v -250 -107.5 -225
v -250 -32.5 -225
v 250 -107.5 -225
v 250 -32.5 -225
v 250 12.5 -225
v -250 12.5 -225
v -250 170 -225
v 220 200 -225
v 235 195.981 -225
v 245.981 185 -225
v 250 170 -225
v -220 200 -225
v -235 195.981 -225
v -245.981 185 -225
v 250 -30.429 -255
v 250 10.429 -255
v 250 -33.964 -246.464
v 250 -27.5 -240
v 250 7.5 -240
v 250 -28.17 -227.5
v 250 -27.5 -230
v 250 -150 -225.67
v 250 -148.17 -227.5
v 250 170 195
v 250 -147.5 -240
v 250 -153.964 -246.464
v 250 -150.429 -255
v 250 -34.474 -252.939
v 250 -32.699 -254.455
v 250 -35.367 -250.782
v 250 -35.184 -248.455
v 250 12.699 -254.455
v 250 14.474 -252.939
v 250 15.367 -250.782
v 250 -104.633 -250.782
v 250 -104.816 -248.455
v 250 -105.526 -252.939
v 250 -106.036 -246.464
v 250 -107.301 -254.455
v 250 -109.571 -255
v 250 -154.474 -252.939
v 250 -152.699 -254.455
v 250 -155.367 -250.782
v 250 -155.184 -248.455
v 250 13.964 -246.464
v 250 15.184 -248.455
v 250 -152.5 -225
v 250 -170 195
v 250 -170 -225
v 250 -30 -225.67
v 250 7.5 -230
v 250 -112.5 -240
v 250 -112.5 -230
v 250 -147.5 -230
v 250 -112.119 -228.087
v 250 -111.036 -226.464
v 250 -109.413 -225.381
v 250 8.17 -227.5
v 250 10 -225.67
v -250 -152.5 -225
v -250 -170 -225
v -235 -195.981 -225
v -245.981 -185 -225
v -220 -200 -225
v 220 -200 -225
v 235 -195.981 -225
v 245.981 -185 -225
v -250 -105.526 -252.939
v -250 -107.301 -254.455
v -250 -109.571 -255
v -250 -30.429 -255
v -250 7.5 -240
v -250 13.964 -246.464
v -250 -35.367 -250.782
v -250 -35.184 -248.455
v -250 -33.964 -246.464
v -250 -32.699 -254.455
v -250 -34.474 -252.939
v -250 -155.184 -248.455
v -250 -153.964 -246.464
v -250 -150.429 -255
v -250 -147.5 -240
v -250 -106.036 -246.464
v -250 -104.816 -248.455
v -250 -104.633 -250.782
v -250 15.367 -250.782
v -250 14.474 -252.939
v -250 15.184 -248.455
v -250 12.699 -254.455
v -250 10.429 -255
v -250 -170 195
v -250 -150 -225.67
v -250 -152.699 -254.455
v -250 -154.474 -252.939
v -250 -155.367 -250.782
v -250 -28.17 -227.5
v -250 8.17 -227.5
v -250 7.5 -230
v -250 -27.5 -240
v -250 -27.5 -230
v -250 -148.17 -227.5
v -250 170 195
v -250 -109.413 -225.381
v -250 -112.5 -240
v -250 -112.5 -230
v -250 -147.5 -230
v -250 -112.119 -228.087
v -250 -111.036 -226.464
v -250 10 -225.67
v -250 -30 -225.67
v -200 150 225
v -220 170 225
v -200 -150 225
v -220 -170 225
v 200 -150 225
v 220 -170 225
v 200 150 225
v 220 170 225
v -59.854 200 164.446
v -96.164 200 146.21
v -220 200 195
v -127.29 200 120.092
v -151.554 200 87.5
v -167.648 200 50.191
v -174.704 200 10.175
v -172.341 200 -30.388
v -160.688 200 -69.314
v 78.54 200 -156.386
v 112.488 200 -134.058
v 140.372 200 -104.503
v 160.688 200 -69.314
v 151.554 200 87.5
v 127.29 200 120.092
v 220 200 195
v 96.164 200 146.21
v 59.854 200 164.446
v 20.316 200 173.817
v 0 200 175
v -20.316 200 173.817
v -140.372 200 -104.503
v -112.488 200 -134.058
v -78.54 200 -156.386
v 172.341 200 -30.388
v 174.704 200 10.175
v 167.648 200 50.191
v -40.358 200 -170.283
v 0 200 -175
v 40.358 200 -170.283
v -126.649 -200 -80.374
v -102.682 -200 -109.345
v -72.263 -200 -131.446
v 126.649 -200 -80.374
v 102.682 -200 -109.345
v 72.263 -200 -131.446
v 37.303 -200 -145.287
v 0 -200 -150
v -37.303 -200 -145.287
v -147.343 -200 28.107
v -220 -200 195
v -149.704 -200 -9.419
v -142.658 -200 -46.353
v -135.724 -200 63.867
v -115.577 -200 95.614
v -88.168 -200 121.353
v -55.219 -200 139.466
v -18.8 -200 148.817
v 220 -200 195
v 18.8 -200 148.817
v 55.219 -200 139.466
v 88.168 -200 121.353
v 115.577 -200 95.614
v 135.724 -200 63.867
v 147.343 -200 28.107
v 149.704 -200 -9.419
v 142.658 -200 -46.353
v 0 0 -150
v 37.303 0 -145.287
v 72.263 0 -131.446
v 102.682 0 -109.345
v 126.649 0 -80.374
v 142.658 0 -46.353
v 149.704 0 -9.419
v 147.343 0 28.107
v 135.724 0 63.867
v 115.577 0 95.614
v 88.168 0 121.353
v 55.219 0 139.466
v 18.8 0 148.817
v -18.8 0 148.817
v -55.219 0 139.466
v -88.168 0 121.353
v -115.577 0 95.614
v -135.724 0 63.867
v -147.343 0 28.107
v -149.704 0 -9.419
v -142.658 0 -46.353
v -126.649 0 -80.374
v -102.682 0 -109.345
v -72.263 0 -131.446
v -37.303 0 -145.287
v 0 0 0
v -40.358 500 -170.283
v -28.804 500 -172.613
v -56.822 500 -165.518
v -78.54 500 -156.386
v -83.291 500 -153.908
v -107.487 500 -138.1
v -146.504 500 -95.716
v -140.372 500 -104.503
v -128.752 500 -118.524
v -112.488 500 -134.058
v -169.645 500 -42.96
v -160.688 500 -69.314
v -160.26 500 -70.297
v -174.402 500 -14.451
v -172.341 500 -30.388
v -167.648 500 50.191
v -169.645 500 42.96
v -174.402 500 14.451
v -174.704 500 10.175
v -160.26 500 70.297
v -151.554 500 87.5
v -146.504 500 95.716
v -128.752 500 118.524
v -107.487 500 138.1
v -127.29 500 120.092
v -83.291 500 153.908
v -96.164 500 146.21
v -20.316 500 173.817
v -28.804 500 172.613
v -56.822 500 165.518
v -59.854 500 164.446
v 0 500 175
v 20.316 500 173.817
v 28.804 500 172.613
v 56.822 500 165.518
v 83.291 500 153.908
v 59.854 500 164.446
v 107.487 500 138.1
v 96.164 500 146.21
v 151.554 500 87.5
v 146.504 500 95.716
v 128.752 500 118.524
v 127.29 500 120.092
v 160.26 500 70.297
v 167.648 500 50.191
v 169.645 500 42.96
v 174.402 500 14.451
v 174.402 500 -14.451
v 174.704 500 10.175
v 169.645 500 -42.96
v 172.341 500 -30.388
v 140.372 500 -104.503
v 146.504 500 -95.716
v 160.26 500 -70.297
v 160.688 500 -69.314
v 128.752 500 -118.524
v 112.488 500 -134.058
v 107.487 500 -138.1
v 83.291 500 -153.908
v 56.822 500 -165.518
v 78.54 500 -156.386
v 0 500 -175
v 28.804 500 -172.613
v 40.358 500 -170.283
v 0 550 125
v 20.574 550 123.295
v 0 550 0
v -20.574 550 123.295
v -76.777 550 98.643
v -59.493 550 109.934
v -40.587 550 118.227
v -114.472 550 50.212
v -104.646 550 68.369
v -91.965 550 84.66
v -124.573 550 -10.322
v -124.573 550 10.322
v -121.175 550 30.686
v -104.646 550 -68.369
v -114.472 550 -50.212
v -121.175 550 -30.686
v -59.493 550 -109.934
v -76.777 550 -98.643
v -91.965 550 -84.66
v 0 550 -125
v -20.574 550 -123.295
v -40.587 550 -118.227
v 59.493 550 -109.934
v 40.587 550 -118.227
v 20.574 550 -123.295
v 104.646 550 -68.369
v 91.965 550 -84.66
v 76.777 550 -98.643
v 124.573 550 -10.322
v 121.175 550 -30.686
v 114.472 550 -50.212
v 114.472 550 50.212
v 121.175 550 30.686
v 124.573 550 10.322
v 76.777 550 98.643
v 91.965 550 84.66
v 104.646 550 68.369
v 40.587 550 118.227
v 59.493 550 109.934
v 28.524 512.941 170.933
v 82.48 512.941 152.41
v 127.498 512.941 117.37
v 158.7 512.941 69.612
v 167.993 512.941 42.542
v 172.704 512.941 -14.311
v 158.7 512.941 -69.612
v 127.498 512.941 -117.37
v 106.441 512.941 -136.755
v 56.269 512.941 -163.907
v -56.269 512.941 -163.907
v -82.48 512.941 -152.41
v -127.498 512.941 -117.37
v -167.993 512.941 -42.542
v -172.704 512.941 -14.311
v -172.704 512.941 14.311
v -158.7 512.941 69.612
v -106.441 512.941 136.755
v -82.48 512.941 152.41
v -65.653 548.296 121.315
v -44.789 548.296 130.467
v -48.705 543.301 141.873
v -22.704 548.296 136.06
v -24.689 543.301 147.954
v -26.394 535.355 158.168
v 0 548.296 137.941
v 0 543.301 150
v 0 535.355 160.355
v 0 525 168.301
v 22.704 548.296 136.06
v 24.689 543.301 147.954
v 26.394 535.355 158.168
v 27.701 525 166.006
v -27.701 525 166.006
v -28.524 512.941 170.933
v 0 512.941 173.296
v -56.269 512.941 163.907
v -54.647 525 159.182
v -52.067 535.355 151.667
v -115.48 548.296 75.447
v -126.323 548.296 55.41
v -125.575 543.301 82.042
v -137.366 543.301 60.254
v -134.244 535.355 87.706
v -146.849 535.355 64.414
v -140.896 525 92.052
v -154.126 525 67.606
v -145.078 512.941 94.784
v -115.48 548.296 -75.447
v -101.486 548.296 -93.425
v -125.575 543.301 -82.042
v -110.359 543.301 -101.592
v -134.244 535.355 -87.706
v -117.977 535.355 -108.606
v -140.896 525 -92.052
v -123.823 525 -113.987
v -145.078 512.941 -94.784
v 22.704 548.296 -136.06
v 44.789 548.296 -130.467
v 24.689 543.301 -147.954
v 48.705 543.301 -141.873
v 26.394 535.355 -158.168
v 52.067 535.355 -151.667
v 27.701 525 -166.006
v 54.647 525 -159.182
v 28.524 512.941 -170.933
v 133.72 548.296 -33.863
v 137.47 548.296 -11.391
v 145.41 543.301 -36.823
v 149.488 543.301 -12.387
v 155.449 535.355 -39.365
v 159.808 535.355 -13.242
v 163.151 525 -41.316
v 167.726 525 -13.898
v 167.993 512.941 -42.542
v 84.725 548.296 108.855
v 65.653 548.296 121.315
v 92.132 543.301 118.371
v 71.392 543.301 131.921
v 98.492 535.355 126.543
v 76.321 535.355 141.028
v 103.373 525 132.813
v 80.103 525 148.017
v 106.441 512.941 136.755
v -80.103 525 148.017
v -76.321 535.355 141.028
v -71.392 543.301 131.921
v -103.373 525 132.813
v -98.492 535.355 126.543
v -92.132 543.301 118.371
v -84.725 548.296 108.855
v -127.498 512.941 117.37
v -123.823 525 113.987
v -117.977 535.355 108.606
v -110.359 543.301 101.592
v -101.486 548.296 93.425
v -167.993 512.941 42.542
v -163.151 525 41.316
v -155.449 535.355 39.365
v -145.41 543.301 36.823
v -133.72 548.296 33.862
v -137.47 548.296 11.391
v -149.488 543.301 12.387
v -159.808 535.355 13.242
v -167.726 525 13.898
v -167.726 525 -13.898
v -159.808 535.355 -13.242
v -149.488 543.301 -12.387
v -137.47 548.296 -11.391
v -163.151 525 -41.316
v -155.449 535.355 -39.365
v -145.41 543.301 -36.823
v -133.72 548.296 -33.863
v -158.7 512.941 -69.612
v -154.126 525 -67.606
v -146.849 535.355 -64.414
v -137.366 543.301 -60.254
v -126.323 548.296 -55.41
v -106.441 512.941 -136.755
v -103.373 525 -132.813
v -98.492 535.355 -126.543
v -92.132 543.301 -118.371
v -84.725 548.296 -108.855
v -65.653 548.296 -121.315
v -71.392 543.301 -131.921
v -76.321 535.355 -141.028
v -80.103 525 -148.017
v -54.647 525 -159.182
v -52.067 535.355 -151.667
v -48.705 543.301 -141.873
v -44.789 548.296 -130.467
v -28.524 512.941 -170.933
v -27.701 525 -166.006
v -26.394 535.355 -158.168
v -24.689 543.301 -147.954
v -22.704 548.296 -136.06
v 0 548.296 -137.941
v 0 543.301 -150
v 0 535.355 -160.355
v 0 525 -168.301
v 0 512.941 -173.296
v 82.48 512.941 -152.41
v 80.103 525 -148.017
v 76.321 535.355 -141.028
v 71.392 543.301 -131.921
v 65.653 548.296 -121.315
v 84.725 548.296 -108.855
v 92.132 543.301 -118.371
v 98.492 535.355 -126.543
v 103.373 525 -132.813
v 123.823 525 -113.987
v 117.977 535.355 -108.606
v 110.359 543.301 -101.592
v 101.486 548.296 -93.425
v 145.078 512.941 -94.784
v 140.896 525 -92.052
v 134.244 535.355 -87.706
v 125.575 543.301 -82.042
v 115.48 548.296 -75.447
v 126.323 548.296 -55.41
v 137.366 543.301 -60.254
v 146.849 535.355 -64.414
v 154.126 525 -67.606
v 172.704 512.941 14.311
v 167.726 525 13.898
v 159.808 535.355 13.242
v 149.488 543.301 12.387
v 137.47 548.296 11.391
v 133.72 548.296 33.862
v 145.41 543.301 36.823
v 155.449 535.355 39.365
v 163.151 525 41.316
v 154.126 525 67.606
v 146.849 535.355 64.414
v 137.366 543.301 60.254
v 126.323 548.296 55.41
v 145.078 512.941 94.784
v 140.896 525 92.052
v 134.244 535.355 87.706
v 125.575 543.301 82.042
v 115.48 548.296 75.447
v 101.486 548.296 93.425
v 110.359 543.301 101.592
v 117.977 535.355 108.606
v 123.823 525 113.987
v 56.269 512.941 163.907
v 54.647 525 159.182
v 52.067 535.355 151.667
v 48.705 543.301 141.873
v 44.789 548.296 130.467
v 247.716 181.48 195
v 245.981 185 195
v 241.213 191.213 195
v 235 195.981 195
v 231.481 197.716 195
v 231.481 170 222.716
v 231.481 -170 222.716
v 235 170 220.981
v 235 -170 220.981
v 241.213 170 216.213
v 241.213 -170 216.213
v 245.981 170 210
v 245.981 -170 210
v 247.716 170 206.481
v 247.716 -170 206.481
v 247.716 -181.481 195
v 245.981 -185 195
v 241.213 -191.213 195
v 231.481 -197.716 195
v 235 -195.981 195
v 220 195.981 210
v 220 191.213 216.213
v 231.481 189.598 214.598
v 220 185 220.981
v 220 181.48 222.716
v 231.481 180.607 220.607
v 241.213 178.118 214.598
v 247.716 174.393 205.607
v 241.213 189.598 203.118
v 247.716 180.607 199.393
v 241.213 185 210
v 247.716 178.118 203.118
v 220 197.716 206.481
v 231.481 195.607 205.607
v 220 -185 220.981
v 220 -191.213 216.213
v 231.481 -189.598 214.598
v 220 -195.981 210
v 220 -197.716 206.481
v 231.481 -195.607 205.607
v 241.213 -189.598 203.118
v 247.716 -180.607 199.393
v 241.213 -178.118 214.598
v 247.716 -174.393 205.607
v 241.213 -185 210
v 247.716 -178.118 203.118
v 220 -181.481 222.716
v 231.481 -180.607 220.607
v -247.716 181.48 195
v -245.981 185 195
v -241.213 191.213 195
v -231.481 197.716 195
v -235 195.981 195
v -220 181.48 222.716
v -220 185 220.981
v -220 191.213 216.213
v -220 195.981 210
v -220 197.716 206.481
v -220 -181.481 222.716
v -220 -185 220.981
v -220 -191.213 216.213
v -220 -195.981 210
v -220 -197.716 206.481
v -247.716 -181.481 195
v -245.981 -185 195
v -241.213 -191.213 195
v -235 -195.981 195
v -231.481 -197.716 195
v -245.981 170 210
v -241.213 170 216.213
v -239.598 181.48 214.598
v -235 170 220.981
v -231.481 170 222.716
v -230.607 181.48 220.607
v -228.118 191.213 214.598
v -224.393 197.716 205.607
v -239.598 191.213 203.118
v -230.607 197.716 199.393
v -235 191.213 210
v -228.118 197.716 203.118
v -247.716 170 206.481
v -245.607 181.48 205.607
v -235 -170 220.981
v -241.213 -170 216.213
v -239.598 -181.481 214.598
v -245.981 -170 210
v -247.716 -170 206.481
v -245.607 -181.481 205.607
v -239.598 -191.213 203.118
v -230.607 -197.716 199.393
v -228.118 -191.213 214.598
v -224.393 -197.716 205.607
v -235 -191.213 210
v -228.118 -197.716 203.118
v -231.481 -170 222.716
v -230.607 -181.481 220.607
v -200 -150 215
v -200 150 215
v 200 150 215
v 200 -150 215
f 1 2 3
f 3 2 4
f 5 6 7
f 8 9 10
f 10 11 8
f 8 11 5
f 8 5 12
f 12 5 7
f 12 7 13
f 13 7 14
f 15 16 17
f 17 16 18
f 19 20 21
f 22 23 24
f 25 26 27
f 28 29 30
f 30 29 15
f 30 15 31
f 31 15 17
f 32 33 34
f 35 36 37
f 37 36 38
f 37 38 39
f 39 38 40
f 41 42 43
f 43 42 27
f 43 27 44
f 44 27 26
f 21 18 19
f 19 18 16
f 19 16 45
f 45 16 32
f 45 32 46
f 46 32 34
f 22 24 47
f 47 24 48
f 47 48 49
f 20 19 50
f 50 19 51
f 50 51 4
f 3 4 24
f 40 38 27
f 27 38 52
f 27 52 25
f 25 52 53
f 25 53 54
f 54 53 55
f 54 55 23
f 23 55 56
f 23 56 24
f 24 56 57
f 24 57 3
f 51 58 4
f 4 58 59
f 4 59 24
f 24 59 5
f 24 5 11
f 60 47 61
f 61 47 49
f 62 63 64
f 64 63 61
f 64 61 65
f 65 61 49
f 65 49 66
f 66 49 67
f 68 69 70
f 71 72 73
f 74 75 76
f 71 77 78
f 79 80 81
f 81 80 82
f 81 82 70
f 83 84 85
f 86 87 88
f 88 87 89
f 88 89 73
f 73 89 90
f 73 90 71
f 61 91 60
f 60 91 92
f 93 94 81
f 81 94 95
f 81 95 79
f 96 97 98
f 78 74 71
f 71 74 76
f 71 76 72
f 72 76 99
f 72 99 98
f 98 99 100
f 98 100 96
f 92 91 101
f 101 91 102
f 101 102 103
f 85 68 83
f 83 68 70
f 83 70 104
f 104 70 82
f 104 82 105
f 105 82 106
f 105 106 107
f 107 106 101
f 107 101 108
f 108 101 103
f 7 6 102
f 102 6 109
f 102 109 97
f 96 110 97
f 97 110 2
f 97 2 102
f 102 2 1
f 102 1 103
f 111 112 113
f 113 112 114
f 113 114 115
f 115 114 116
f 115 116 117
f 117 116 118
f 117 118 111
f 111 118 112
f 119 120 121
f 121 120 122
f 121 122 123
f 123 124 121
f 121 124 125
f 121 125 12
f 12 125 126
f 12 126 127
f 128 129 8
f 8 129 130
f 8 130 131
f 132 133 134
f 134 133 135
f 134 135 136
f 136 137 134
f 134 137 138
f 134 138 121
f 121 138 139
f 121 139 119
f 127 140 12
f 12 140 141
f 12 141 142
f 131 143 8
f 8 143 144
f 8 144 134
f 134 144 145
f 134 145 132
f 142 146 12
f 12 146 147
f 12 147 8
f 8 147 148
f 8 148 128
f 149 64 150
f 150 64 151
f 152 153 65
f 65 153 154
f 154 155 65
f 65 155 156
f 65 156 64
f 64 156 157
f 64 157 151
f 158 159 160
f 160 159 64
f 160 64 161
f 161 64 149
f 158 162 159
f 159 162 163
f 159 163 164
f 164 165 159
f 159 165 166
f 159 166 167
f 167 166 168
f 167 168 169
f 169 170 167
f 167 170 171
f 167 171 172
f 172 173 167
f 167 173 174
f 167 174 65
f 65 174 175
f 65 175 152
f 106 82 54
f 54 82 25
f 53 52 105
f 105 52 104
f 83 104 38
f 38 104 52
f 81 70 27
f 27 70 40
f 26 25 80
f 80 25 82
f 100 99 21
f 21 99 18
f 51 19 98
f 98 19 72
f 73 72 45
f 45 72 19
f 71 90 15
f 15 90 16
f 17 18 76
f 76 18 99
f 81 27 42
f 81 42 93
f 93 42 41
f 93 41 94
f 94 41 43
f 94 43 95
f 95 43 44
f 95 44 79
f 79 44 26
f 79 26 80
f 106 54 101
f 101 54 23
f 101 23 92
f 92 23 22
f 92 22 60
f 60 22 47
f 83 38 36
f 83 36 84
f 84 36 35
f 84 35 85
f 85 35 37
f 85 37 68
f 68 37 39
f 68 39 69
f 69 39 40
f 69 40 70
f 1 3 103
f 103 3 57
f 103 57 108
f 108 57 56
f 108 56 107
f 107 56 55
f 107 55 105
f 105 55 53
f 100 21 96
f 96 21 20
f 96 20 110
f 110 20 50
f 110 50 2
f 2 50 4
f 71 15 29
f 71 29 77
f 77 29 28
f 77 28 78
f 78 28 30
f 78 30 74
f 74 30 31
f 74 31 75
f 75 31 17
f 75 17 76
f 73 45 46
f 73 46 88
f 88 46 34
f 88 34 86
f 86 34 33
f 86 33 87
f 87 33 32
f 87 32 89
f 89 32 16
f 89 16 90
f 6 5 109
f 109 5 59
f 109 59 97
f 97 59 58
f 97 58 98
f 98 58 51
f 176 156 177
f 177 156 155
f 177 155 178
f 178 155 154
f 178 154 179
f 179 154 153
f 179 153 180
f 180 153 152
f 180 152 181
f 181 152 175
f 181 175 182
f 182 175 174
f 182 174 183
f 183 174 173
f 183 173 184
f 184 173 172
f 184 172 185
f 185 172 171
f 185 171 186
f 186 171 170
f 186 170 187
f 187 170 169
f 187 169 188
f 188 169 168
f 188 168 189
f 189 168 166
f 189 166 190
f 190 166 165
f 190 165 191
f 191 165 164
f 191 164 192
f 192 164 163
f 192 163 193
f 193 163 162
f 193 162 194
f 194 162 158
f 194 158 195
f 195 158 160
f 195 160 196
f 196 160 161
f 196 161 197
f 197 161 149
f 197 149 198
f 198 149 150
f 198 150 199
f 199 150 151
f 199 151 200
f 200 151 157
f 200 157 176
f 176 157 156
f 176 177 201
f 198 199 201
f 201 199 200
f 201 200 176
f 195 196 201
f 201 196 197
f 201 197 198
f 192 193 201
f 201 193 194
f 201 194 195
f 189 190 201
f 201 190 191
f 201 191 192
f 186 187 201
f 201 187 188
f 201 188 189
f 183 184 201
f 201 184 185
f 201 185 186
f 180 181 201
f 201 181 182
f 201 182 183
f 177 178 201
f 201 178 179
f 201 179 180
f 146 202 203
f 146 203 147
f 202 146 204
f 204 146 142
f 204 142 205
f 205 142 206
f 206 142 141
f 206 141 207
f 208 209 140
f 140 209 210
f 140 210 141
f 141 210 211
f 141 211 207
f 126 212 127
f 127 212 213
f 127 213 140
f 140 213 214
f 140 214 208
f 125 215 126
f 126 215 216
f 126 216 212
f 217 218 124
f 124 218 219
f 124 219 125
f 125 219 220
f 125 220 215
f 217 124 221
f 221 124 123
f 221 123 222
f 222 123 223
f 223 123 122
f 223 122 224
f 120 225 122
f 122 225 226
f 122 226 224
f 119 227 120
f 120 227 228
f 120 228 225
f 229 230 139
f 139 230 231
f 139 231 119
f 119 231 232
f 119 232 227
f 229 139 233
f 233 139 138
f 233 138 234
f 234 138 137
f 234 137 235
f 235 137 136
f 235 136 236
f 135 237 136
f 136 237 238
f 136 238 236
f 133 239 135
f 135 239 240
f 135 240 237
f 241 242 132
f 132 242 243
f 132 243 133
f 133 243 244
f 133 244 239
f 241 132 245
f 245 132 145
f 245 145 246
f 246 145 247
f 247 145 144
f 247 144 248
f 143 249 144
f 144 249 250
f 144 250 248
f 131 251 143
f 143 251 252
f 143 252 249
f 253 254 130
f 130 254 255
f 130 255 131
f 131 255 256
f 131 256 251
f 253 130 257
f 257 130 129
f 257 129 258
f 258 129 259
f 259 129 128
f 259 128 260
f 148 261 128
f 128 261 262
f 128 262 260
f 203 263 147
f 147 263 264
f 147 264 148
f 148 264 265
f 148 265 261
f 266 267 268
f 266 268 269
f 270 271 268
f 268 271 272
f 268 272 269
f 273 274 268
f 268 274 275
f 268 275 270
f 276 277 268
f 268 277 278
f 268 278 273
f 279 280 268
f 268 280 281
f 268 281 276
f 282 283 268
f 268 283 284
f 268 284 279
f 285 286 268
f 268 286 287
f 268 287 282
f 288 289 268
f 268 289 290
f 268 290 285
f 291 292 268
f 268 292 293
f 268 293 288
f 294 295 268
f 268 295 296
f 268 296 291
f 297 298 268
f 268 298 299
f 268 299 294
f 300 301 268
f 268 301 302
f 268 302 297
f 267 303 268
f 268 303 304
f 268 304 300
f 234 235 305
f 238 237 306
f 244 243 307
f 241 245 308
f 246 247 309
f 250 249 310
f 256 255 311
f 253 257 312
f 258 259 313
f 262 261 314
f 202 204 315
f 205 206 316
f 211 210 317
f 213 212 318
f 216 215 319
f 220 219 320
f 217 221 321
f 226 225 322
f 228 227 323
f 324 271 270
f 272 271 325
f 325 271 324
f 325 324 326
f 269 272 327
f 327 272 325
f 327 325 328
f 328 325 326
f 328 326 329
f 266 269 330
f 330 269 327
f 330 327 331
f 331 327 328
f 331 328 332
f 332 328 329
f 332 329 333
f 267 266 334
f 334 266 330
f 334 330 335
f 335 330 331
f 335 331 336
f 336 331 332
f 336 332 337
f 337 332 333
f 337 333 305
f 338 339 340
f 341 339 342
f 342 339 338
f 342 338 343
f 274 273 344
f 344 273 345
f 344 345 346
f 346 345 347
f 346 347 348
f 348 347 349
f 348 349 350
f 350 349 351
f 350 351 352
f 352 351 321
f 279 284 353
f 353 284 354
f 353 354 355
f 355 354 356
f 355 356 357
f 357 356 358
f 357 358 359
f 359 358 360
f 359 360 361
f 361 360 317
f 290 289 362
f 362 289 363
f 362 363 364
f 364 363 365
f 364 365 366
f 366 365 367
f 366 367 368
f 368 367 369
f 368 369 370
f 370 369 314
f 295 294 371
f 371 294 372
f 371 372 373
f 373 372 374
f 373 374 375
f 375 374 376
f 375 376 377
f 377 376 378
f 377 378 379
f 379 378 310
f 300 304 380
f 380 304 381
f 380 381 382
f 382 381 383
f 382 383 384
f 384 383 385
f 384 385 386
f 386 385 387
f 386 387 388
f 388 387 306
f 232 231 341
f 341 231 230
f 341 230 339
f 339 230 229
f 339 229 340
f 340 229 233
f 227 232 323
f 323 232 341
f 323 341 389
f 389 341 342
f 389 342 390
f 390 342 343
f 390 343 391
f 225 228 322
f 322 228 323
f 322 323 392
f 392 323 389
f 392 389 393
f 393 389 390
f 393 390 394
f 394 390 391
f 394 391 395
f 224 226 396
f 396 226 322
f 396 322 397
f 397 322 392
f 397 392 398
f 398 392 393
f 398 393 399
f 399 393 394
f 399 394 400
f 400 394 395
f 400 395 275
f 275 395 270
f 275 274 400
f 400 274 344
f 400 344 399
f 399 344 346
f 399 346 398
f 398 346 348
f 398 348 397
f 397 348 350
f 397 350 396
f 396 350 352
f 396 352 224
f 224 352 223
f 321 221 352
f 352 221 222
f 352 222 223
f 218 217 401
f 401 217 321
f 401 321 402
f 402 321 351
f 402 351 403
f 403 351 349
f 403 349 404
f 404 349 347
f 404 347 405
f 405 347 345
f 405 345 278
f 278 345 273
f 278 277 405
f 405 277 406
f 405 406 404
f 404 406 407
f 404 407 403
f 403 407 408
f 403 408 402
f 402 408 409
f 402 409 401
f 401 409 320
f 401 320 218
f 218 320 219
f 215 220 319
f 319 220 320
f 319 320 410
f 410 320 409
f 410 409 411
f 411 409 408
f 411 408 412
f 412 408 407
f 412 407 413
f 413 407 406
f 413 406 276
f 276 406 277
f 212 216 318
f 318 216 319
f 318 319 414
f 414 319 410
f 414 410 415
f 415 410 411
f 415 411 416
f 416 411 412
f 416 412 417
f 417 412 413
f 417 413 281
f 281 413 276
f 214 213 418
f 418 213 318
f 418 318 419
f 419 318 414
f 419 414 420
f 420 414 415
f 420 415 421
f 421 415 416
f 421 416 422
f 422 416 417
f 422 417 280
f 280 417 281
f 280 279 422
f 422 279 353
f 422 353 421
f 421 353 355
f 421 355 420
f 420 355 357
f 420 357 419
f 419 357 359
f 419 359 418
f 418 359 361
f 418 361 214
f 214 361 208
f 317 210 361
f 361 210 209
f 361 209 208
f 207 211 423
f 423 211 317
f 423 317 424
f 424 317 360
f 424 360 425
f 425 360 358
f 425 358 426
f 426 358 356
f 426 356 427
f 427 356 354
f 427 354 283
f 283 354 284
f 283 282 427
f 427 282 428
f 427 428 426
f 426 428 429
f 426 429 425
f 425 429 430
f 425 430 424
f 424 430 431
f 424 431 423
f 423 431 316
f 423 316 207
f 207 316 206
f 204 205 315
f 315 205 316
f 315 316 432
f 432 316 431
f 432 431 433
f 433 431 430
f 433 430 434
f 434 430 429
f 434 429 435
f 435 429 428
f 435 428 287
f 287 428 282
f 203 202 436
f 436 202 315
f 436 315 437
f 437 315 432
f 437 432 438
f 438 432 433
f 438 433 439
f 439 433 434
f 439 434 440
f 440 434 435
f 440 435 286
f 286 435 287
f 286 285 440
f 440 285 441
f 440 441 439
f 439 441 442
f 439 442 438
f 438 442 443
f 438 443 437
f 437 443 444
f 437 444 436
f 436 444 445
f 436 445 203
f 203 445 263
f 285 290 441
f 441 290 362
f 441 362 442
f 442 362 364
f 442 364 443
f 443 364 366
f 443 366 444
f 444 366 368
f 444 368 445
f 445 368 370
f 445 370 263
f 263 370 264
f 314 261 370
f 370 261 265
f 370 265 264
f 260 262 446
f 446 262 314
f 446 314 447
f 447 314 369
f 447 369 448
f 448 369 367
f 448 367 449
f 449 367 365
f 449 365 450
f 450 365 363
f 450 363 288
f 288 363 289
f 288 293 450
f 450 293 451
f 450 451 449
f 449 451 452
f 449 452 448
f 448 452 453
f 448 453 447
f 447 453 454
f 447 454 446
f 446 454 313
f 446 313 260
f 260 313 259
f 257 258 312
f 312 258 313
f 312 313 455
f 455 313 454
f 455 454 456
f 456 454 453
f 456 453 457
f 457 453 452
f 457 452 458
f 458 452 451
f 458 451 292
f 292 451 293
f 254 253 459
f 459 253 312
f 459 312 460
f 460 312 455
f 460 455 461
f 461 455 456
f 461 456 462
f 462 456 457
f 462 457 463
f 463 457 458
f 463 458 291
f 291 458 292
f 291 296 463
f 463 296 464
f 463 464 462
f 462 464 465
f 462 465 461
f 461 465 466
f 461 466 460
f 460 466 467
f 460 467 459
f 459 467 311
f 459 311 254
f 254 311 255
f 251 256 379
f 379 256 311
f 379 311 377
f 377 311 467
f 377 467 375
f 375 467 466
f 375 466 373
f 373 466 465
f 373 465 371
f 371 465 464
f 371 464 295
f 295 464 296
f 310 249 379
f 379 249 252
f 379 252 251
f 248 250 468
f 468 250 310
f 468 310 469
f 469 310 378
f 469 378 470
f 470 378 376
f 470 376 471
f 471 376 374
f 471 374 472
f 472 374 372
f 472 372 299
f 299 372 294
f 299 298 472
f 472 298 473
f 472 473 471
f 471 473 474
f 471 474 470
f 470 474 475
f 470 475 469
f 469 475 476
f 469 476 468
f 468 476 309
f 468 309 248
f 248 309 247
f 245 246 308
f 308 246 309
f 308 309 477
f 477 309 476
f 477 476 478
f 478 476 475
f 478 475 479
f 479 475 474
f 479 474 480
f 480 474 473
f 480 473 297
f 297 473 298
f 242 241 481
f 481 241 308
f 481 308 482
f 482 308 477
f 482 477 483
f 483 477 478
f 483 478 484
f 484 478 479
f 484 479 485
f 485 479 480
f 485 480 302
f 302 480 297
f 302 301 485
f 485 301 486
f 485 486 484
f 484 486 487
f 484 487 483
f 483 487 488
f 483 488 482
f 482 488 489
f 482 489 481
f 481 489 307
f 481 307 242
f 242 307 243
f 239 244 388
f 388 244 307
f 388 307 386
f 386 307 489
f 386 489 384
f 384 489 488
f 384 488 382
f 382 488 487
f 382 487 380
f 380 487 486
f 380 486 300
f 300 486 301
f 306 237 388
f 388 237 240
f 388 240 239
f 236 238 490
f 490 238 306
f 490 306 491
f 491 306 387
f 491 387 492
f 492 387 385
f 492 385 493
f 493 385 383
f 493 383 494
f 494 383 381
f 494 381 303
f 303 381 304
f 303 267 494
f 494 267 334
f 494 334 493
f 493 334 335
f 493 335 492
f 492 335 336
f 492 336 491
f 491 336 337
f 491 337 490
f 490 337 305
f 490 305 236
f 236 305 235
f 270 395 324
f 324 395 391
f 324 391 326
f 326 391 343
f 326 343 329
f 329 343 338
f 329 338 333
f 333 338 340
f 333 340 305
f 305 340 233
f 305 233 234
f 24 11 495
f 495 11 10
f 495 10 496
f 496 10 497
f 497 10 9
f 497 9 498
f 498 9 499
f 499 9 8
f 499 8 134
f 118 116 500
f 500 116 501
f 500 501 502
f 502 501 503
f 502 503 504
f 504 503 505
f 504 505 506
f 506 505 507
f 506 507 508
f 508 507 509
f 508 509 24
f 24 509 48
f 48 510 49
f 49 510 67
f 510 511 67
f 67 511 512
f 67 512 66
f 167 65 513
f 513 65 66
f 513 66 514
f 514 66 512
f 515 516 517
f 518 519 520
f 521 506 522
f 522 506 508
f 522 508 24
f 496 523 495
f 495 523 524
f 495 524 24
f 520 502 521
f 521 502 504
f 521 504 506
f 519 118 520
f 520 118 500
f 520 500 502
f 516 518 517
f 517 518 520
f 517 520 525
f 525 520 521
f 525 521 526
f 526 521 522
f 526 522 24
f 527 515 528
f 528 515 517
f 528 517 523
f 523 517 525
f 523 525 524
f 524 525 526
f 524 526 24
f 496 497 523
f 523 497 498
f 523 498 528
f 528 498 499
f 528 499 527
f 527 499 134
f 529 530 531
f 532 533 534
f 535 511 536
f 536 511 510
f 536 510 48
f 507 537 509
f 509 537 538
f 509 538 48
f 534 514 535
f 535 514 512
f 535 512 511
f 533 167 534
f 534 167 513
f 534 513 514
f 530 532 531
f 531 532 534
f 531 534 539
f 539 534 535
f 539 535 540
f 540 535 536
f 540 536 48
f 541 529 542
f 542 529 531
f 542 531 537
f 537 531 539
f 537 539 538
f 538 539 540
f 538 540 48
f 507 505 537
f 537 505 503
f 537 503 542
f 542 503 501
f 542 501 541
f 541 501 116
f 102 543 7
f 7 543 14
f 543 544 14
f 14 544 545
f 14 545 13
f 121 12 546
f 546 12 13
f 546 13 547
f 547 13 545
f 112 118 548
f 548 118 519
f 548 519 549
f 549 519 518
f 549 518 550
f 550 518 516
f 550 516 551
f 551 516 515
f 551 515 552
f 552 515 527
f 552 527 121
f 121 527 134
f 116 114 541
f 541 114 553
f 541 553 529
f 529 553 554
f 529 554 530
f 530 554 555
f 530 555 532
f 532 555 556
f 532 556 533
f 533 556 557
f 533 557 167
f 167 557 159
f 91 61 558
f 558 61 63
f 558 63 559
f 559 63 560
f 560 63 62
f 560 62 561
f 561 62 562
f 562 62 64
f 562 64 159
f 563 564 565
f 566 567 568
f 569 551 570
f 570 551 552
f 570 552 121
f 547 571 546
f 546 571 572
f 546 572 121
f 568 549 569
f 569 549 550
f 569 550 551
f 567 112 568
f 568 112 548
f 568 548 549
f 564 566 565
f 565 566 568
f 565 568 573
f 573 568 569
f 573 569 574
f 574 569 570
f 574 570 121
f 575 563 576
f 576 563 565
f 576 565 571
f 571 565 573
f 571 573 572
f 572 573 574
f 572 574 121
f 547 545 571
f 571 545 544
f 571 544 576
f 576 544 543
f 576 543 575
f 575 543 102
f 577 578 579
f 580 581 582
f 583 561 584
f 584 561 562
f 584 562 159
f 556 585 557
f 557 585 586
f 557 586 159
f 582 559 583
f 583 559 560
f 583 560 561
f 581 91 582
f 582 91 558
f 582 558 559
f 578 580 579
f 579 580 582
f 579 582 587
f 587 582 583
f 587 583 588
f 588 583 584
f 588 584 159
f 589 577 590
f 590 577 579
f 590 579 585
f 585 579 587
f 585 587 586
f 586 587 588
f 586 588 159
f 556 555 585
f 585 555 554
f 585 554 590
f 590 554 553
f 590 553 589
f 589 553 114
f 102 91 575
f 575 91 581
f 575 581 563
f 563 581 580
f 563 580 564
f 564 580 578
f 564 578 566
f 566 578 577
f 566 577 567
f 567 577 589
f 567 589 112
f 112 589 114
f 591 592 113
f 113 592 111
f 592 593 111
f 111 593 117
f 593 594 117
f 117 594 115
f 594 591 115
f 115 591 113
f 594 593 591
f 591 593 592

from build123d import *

# Parameters (mm, degrees)
SKETCH1_W           = 500
SKETCH1_H           = 450
BOSS_EXTRUDE1_DEPTH = 200
BOSS_EXTRUDE2_DEPTH = 500
FILLET1_R           = 5
SKETCH3_R           = 150
CUT_EXTRUDE1_DEPTH  = 200
SKETCH4_R           = 175
BOSS_EXTRUDE3_DEPTH = 350
FILLET2_R           = 50
FILLET3_R           = 30
SKETCH5_W           = 400
SKETCH5_H           = 300
CUT_EXTRUDE2_DEPTH  = 10


with BuildPart() as part:
    # Sketch1 → Boss-Extrude1 (new, symmetric)
    with BuildSketch(Plane(origin=(0, 0, 0), x_dir=(1, 0, 0), z_dir=(0, 1, 0))):
        Rectangle(SKETCH1_W, SKETCH1_H)
    extrude(amount=BOSS_EXTRUDE1_DEPTH, both=True)

    # Sketch2 → Boss-Extrude2 (add)
    with BuildSketch(Plane(origin=(250, 0, 0), x_dir=(0, 0, -1), z_dir=(1, 0, 0))):
        Polygon((240, -27.5), (255, -42.5), (255, 22.5), (240, 7.5), (225, 7.5), (225, -27.5), align=None)
        Polygon((225, -147.5), (225, -112.5), (240, -112.5), (255, -97.5), (255, -162.5), (240, -147.5), align=None)
    extrude(amount=-BOSS_EXTRUDE2_DEPTH)

    # Fillet1
    fillet1_edges = [part.edges().sort_by_distance(p)[0] for p in [
        (0, -147.5, -225),
        (0, -112.5, -225),
        (0, -97.5, -255),
        (0, -162.5, -255),
        (0, -27.5, -225),
        (0, 7.5, -225),
        (0, 22.5, -255),
        (0, -42.5, -255),
    ]]
    fillet(fillet1_edges, radius=FILLET1_R)

    # Sketch3 → Cut-Extrude1 (cut)
    with BuildSketch(Plane.XZ.offset(200)):
        with Locations(Location((0, 0, 0), (0, 0, 270))):
            Circle(SKETCH3_R)
    extrude(amount=-CUT_EXTRUDE1_DEPTH, mode=Mode.SUBTRACT)

    # Sketch4 → Boss-Extrude3 (add)
    with BuildSketch(Plane(origin=(0, 200, 0), x_dir=(1, 0, 0), z_dir=(0, 1, 0))):
        with Locations(Location((0, 0, 0), (0, 0, 270))):
            Circle(SKETCH4_R)
    extrude(amount=BOSS_EXTRUDE3_DEPTH)

    # Fillet2
    fillet2_edges = [part.edges().sort_by_distance(p)[0] for p in [
        (0, 550, -175),
    ]]
    fillet(fillet2_edges, radius=FILLET2_R)

    # Fillet3
    fillet3_edges = [part.edges().sort_by_distance(p)[0] for p in [
        (-250, 200, 0),
        (0, 200, 225),
        (250, 200, 0),
        (0, -200, 225),
        (-250, -200, 0),
        (250, -200, 0),
        (250, 0, 225),
        (-250, 0, 225),
    ]]
    fillet(fillet3_edges, radius=FILLET3_R)

    # Sketch5 → Cut-Extrude2 (cut)
    with BuildSketch(Plane.XY.offset(225)):
        Rectangle(SKETCH5_W, SKETCH5_H)
    extrude(amount=-CUT_EXTRUDE2_DEPTH, mode=Mode.SUBTRACT)


solid = part.part
